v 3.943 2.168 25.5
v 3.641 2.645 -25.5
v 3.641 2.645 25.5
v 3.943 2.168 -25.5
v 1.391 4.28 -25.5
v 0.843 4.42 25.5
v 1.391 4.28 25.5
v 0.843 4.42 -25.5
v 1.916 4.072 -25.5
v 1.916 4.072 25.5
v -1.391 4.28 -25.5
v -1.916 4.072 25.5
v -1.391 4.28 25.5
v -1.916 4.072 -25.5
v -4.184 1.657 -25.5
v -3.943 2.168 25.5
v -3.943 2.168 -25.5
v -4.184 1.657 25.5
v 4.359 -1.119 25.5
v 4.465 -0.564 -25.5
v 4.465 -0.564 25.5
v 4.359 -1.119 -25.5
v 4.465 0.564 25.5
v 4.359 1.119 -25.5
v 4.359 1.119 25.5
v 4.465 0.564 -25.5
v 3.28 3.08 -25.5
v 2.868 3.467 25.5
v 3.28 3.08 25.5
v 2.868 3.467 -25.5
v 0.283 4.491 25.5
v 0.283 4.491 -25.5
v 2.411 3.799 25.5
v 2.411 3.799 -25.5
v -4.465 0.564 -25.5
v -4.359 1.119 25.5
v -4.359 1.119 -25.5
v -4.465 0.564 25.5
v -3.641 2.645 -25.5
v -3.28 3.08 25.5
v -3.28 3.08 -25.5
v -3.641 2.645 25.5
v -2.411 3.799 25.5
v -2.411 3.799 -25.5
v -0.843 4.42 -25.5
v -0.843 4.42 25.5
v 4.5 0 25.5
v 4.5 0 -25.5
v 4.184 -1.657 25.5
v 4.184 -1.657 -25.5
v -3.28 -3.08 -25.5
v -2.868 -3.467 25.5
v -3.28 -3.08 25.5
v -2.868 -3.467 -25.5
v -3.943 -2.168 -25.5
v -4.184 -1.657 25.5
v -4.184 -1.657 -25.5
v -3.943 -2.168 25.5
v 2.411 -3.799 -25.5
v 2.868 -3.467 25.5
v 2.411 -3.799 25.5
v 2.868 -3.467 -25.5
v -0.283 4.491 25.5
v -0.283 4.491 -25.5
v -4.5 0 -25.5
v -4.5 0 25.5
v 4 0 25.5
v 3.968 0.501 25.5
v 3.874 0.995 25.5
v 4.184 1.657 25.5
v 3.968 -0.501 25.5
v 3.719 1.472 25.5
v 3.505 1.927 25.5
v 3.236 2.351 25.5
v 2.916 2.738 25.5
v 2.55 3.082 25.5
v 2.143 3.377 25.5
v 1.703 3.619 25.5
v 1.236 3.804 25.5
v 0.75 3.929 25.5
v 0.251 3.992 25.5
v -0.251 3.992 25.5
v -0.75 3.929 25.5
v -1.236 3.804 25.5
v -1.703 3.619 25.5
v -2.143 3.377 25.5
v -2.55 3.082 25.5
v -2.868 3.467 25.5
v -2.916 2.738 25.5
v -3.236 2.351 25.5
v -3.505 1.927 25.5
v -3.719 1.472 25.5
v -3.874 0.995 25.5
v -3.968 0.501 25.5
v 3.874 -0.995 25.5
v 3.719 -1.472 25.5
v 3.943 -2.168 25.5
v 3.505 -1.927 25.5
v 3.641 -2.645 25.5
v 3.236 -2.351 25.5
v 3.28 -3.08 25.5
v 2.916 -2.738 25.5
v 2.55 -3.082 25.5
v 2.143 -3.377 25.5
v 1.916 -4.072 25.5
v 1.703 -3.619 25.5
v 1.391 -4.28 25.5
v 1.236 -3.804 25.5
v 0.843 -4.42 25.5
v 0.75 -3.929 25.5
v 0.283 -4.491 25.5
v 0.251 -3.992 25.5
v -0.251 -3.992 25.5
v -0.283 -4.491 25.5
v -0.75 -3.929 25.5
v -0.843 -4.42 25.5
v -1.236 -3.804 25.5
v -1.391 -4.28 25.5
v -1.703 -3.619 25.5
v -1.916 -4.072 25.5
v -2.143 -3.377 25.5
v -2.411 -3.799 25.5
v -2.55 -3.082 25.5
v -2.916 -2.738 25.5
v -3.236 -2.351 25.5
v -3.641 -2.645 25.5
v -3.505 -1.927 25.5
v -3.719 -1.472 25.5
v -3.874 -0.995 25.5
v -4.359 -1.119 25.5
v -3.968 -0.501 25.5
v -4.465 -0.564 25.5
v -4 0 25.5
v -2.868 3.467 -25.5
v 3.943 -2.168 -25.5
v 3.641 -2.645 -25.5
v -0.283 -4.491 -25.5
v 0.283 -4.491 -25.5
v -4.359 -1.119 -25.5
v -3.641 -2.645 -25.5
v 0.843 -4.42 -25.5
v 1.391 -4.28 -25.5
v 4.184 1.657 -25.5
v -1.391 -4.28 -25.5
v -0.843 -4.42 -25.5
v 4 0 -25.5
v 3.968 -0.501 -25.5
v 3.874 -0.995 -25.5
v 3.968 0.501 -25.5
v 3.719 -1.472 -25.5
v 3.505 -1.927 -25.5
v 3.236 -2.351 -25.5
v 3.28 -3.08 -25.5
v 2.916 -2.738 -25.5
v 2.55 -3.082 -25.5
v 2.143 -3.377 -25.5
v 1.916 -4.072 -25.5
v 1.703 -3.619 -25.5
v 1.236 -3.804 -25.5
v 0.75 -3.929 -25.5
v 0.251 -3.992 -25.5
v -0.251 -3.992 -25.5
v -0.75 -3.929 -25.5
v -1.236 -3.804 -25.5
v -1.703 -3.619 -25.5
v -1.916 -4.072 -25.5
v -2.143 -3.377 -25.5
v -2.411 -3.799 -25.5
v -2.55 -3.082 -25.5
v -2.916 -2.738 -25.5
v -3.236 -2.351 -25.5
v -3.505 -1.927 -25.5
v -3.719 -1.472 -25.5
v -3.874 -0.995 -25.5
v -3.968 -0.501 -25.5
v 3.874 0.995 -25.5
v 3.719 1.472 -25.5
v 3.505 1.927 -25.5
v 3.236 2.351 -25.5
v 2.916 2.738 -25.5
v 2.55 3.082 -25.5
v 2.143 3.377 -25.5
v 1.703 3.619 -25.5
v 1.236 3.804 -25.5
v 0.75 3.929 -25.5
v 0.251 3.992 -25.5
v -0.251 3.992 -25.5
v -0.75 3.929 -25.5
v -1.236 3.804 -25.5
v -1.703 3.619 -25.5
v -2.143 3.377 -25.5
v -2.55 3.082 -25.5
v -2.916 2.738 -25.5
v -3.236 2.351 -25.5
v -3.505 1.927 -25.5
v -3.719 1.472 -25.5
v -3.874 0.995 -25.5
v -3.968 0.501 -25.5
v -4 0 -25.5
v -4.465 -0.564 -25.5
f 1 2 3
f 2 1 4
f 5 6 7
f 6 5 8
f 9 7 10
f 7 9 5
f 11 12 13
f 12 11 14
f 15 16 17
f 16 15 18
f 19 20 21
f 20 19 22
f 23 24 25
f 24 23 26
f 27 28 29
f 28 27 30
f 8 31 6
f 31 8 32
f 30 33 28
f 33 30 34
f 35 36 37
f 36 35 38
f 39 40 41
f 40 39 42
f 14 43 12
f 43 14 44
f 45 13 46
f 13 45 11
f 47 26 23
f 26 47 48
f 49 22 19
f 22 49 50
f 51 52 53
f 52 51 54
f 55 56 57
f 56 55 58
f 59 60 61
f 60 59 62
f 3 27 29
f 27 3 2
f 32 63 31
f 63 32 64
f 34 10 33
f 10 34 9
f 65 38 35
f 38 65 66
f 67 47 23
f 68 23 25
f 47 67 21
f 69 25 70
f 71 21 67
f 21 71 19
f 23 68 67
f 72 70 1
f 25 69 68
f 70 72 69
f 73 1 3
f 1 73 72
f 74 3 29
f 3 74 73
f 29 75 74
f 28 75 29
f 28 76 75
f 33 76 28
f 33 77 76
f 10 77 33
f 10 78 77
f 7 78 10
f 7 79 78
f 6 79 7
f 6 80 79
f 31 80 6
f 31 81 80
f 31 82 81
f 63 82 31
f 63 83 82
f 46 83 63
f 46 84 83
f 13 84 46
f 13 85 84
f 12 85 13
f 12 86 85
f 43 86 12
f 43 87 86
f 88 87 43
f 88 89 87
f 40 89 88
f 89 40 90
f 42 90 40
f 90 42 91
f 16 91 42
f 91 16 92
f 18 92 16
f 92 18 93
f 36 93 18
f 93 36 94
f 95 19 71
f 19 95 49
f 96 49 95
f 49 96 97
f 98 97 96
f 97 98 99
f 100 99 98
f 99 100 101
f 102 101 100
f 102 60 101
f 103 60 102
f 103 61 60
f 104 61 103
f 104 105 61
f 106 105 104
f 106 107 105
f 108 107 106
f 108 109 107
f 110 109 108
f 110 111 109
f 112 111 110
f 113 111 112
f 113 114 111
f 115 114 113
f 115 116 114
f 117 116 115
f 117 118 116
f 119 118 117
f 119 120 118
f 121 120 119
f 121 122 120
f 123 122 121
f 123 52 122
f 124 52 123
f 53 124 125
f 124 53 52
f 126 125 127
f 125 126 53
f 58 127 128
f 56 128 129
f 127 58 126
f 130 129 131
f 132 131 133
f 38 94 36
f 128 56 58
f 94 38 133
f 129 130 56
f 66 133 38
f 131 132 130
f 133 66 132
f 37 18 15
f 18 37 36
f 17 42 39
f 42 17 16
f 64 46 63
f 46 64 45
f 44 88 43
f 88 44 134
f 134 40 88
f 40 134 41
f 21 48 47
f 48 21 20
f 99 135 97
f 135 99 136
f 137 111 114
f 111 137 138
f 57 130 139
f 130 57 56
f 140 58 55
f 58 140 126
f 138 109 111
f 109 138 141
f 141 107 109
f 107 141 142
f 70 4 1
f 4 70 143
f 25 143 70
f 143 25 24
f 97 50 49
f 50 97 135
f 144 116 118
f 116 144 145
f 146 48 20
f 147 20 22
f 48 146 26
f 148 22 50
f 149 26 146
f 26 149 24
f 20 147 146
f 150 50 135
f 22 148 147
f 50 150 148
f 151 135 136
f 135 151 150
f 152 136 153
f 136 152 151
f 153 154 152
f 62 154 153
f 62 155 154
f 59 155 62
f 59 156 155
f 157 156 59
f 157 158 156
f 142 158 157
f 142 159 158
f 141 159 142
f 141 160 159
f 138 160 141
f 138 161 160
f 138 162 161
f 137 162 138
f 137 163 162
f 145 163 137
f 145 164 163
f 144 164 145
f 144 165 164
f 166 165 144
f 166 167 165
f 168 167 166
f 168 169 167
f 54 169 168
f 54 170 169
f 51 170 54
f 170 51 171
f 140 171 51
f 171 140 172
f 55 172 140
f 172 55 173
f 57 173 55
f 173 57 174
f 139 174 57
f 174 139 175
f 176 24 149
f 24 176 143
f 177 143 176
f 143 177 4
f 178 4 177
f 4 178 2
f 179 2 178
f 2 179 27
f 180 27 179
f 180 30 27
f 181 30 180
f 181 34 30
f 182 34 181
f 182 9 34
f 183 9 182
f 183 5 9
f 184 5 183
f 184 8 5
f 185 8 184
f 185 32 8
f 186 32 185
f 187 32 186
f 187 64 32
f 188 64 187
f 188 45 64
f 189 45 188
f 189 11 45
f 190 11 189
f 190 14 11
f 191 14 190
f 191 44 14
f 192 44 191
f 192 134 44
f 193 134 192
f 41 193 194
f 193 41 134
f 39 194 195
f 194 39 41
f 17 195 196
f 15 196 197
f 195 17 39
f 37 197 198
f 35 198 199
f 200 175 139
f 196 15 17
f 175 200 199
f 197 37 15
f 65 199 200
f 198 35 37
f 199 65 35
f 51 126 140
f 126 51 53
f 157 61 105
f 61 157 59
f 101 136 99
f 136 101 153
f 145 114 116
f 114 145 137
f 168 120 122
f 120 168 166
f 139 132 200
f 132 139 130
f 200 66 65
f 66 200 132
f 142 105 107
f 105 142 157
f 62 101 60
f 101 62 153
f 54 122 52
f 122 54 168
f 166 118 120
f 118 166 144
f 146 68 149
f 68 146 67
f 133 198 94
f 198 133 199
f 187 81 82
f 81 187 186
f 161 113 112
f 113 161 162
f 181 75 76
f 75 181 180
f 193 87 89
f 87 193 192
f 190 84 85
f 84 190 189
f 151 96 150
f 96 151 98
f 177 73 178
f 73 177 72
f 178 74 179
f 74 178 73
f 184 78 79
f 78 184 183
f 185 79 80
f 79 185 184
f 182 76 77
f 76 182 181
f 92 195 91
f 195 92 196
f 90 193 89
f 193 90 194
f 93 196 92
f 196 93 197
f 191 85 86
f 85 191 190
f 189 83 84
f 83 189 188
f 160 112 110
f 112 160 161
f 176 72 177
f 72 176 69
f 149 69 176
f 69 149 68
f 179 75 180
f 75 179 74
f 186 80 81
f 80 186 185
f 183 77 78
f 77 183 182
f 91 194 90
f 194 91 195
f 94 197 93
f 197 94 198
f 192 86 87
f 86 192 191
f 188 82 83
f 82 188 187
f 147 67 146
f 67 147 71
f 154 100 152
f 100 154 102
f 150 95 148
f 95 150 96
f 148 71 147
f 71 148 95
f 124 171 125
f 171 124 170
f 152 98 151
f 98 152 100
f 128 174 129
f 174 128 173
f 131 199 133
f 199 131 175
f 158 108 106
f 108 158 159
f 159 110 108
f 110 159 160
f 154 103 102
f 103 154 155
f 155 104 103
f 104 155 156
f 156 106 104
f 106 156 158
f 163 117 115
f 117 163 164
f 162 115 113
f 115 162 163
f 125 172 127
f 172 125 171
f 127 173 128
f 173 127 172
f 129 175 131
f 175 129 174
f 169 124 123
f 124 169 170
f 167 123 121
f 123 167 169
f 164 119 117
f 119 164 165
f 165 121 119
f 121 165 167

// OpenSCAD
$fn = 50;


difference() {
	union() {
		translate(v = [0, 0, -25.5000000000]) {
			cylinder(h = 51, r = 4.5000000000);
		}
	}
	union() {
		translate(v = [0, 0, -100.0000000000]) {
			cylinder(h = 200, r = 4);
		}
	}
}
